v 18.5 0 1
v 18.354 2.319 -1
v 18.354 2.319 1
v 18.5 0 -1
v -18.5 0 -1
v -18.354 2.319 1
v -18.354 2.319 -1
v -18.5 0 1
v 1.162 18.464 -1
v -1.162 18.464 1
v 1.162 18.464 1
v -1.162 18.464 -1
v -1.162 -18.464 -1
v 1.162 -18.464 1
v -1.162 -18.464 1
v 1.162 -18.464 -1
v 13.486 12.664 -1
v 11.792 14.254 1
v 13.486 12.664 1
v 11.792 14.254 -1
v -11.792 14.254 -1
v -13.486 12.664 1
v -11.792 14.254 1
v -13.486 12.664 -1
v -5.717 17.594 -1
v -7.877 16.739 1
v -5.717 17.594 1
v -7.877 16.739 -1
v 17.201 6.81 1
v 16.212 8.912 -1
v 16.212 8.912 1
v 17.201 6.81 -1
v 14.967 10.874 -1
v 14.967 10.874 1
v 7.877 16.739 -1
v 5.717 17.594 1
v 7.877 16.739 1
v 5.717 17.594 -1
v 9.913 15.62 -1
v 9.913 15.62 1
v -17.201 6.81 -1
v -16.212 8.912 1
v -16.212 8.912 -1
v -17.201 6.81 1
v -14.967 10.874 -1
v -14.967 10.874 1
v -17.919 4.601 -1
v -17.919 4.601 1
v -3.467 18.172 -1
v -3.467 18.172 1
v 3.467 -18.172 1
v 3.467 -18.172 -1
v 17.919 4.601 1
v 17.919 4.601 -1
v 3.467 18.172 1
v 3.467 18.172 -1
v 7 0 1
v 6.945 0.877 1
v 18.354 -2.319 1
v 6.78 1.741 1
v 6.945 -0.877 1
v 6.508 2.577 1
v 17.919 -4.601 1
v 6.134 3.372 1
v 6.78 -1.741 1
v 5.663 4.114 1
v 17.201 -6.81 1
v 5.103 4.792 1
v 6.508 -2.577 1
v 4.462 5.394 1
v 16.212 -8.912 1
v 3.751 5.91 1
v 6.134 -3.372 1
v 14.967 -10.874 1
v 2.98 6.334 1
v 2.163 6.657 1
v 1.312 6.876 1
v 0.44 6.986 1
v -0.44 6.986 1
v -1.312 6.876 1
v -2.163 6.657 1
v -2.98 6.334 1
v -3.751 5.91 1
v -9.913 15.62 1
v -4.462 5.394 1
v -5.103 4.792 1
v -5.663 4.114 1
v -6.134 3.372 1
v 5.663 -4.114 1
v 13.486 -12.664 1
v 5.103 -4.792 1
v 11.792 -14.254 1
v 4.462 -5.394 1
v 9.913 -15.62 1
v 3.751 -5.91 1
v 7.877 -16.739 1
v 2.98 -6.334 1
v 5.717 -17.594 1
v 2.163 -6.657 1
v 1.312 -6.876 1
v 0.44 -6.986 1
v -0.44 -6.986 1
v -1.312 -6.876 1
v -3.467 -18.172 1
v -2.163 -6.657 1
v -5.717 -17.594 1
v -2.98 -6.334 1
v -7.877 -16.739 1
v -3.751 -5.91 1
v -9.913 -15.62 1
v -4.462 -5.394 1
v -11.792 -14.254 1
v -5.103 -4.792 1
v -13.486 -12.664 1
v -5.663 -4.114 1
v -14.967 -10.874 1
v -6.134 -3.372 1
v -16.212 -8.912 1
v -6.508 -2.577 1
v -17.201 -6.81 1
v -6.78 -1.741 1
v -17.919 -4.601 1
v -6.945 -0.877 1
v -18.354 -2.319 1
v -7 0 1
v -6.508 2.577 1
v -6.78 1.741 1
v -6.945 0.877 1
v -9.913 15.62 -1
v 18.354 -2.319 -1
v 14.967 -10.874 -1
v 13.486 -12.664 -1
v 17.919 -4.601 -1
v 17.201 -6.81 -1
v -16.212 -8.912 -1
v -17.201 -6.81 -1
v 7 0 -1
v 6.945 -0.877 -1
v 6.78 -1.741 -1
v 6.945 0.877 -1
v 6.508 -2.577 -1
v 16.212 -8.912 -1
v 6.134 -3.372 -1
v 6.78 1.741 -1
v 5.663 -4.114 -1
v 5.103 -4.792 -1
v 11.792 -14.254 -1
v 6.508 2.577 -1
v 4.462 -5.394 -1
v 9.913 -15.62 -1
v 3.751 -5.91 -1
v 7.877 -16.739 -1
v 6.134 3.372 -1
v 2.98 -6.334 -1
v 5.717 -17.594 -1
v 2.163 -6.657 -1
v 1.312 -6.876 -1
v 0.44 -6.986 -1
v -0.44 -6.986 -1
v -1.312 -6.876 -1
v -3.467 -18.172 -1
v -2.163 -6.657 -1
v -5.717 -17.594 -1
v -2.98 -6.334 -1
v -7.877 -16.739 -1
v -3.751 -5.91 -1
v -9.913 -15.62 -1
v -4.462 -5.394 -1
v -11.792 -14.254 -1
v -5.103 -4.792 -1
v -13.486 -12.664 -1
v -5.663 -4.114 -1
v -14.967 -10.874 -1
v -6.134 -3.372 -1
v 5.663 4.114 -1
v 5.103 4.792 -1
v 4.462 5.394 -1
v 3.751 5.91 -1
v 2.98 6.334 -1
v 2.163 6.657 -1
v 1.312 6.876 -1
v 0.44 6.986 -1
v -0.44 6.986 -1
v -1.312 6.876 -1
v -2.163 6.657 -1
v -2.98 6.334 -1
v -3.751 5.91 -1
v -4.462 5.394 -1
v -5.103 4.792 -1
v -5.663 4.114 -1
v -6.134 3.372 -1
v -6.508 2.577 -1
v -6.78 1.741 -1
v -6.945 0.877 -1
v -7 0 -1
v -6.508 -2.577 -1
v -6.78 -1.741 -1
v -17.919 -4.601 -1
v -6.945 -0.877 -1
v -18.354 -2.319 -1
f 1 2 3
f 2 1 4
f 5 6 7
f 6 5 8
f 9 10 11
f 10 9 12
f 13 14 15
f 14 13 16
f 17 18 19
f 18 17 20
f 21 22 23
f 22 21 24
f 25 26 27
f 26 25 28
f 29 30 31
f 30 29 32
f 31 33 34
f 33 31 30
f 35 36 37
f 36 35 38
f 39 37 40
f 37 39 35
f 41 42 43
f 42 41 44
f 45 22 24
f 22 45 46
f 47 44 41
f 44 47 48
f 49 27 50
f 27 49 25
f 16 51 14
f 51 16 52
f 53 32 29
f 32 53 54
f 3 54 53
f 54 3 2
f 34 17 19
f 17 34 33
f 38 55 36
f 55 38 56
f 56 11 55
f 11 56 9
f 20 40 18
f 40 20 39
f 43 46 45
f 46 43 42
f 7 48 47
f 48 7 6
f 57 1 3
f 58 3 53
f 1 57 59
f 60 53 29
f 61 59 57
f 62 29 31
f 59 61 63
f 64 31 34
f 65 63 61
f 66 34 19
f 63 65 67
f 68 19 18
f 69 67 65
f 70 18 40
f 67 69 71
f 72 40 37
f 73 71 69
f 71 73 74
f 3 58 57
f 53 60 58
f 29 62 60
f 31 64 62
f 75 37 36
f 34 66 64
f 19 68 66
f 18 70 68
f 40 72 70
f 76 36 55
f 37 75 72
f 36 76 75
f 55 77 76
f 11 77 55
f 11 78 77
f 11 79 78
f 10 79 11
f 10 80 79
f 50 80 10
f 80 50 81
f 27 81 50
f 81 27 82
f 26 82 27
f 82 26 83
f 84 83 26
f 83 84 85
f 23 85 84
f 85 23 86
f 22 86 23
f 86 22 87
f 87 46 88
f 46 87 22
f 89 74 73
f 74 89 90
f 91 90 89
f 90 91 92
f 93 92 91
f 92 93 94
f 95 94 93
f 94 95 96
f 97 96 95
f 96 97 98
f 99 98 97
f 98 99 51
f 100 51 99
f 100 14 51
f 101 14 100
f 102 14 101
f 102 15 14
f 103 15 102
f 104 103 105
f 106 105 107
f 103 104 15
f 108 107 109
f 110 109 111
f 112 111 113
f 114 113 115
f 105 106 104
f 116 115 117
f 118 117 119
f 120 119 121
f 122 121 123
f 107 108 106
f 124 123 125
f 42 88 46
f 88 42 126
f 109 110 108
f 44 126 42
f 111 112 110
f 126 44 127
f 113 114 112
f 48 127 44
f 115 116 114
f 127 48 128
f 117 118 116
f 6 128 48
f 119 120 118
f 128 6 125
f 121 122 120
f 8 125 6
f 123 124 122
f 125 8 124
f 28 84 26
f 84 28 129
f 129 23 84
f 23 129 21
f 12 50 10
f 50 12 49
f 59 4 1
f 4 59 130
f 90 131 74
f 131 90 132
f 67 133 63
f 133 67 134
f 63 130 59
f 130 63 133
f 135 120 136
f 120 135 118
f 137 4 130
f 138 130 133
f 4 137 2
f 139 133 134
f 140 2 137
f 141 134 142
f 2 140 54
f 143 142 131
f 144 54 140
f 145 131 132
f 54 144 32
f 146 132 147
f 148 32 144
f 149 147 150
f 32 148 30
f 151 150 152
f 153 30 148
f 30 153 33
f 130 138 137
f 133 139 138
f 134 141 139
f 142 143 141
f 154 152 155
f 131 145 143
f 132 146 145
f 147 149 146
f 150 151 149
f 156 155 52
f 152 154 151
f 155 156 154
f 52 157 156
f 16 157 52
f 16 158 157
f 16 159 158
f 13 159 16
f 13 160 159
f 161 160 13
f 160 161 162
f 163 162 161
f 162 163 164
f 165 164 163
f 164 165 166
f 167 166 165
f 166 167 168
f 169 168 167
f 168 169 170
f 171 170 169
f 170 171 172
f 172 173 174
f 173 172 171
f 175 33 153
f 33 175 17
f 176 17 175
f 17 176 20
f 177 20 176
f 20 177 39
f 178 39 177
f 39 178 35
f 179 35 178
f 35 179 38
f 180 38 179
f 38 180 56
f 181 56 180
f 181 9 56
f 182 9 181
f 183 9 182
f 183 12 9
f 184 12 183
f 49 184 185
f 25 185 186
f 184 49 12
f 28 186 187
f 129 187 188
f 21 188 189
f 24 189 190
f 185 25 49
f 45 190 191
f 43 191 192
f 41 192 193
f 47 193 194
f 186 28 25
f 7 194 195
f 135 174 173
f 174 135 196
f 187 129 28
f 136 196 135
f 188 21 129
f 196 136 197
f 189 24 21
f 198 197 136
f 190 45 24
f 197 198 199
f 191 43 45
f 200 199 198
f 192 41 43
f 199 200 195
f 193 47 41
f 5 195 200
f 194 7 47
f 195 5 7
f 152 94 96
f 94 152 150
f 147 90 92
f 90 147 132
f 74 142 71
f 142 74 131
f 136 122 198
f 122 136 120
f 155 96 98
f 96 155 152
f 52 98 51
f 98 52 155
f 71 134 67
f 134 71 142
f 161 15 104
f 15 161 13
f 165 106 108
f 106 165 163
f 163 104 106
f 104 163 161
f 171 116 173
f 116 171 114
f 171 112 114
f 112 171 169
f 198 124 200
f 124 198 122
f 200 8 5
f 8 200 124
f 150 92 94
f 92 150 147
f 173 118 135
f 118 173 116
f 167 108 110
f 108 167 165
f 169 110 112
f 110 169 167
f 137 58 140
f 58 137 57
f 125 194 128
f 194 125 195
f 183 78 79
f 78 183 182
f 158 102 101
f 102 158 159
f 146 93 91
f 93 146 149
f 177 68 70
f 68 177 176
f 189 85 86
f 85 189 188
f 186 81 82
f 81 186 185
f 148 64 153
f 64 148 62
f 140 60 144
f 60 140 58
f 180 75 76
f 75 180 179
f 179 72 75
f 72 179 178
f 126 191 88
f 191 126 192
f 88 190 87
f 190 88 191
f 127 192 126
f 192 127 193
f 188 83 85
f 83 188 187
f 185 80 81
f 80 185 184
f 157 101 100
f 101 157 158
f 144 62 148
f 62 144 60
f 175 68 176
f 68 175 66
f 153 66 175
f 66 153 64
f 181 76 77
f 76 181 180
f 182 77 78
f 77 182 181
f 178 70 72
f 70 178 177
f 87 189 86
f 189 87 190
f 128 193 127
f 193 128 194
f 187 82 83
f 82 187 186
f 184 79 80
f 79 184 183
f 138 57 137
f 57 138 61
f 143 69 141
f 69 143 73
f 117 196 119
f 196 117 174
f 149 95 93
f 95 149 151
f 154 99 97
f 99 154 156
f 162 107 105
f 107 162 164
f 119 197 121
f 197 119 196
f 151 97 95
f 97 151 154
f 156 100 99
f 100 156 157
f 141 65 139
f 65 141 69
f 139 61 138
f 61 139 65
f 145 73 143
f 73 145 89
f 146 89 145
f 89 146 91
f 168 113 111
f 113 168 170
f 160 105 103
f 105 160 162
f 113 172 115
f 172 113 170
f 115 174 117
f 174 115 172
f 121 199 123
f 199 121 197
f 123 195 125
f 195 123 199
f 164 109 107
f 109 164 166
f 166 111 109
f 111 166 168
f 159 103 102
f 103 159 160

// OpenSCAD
$fn = 50;


difference() {
	union() {
		translate(v = [0, 0, -1.0000000000]) {
			cylinder(h = 2, r = 18.5000000000);
		}
	}
	union() {
		translate(v = [0, 0, -100.0000000000]) {
			cylinder(h = 200, r = 7);
		}
	}
}
